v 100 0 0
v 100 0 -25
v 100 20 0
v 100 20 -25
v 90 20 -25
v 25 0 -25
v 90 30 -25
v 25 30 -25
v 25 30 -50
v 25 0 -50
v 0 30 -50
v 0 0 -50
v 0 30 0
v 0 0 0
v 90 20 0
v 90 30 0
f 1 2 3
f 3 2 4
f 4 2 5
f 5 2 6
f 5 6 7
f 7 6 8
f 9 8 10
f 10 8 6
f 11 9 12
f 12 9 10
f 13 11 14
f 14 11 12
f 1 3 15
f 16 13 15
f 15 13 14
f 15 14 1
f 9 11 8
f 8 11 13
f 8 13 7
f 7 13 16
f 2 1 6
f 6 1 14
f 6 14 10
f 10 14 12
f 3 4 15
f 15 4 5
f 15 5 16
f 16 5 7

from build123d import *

# Parameters (mm, degrees)
P_IDAT_VYSUNUT_M1_DEPTH  = 30
ODEBRAT_VYSUNUT_M1_REACH = 117.758
SKICA2_W                 = 10
SKICA2_H                 = 10


with BuildPart() as part:
    # Skica1 → Přidat vysunutím1 (new body)
    with BuildSketch(Plane(origin=(0, 0, 0), x_dir=(1, 0, 0), z_dir=(0, 1, 0))):
        Polygon((100, 25), (100, 0), (0, 0), (0, 50), (25, 50), (25, 25), align=None)
    extrude(amount=P_IDAT_VYSUNUT_M1_DEPTH)

    # Skica2 → Odebrat vysunutím1 (cut, up to next)
    with BuildSketch(Plane.XY, mode=Mode.PRIVATE) as odebrat_vysunut_m1_sk1:
        with Locations((95, 25)):
            Rectangle(SKICA2_W, SKICA2_H)
    odebrat_vysunut_m1_tool1 = extrude(odebrat_vysunut_m1_sk1.sketch, amount=-ODEBRAT_VYSUNUT_M1_REACH, mode=Mode.PRIVATE) & part.part
    add(odebrat_vysunut_m1_tool1.solids().sort_by_distance((95, 25, 0))[0], mode=Mode.SUBTRACT)


solid = part.part
